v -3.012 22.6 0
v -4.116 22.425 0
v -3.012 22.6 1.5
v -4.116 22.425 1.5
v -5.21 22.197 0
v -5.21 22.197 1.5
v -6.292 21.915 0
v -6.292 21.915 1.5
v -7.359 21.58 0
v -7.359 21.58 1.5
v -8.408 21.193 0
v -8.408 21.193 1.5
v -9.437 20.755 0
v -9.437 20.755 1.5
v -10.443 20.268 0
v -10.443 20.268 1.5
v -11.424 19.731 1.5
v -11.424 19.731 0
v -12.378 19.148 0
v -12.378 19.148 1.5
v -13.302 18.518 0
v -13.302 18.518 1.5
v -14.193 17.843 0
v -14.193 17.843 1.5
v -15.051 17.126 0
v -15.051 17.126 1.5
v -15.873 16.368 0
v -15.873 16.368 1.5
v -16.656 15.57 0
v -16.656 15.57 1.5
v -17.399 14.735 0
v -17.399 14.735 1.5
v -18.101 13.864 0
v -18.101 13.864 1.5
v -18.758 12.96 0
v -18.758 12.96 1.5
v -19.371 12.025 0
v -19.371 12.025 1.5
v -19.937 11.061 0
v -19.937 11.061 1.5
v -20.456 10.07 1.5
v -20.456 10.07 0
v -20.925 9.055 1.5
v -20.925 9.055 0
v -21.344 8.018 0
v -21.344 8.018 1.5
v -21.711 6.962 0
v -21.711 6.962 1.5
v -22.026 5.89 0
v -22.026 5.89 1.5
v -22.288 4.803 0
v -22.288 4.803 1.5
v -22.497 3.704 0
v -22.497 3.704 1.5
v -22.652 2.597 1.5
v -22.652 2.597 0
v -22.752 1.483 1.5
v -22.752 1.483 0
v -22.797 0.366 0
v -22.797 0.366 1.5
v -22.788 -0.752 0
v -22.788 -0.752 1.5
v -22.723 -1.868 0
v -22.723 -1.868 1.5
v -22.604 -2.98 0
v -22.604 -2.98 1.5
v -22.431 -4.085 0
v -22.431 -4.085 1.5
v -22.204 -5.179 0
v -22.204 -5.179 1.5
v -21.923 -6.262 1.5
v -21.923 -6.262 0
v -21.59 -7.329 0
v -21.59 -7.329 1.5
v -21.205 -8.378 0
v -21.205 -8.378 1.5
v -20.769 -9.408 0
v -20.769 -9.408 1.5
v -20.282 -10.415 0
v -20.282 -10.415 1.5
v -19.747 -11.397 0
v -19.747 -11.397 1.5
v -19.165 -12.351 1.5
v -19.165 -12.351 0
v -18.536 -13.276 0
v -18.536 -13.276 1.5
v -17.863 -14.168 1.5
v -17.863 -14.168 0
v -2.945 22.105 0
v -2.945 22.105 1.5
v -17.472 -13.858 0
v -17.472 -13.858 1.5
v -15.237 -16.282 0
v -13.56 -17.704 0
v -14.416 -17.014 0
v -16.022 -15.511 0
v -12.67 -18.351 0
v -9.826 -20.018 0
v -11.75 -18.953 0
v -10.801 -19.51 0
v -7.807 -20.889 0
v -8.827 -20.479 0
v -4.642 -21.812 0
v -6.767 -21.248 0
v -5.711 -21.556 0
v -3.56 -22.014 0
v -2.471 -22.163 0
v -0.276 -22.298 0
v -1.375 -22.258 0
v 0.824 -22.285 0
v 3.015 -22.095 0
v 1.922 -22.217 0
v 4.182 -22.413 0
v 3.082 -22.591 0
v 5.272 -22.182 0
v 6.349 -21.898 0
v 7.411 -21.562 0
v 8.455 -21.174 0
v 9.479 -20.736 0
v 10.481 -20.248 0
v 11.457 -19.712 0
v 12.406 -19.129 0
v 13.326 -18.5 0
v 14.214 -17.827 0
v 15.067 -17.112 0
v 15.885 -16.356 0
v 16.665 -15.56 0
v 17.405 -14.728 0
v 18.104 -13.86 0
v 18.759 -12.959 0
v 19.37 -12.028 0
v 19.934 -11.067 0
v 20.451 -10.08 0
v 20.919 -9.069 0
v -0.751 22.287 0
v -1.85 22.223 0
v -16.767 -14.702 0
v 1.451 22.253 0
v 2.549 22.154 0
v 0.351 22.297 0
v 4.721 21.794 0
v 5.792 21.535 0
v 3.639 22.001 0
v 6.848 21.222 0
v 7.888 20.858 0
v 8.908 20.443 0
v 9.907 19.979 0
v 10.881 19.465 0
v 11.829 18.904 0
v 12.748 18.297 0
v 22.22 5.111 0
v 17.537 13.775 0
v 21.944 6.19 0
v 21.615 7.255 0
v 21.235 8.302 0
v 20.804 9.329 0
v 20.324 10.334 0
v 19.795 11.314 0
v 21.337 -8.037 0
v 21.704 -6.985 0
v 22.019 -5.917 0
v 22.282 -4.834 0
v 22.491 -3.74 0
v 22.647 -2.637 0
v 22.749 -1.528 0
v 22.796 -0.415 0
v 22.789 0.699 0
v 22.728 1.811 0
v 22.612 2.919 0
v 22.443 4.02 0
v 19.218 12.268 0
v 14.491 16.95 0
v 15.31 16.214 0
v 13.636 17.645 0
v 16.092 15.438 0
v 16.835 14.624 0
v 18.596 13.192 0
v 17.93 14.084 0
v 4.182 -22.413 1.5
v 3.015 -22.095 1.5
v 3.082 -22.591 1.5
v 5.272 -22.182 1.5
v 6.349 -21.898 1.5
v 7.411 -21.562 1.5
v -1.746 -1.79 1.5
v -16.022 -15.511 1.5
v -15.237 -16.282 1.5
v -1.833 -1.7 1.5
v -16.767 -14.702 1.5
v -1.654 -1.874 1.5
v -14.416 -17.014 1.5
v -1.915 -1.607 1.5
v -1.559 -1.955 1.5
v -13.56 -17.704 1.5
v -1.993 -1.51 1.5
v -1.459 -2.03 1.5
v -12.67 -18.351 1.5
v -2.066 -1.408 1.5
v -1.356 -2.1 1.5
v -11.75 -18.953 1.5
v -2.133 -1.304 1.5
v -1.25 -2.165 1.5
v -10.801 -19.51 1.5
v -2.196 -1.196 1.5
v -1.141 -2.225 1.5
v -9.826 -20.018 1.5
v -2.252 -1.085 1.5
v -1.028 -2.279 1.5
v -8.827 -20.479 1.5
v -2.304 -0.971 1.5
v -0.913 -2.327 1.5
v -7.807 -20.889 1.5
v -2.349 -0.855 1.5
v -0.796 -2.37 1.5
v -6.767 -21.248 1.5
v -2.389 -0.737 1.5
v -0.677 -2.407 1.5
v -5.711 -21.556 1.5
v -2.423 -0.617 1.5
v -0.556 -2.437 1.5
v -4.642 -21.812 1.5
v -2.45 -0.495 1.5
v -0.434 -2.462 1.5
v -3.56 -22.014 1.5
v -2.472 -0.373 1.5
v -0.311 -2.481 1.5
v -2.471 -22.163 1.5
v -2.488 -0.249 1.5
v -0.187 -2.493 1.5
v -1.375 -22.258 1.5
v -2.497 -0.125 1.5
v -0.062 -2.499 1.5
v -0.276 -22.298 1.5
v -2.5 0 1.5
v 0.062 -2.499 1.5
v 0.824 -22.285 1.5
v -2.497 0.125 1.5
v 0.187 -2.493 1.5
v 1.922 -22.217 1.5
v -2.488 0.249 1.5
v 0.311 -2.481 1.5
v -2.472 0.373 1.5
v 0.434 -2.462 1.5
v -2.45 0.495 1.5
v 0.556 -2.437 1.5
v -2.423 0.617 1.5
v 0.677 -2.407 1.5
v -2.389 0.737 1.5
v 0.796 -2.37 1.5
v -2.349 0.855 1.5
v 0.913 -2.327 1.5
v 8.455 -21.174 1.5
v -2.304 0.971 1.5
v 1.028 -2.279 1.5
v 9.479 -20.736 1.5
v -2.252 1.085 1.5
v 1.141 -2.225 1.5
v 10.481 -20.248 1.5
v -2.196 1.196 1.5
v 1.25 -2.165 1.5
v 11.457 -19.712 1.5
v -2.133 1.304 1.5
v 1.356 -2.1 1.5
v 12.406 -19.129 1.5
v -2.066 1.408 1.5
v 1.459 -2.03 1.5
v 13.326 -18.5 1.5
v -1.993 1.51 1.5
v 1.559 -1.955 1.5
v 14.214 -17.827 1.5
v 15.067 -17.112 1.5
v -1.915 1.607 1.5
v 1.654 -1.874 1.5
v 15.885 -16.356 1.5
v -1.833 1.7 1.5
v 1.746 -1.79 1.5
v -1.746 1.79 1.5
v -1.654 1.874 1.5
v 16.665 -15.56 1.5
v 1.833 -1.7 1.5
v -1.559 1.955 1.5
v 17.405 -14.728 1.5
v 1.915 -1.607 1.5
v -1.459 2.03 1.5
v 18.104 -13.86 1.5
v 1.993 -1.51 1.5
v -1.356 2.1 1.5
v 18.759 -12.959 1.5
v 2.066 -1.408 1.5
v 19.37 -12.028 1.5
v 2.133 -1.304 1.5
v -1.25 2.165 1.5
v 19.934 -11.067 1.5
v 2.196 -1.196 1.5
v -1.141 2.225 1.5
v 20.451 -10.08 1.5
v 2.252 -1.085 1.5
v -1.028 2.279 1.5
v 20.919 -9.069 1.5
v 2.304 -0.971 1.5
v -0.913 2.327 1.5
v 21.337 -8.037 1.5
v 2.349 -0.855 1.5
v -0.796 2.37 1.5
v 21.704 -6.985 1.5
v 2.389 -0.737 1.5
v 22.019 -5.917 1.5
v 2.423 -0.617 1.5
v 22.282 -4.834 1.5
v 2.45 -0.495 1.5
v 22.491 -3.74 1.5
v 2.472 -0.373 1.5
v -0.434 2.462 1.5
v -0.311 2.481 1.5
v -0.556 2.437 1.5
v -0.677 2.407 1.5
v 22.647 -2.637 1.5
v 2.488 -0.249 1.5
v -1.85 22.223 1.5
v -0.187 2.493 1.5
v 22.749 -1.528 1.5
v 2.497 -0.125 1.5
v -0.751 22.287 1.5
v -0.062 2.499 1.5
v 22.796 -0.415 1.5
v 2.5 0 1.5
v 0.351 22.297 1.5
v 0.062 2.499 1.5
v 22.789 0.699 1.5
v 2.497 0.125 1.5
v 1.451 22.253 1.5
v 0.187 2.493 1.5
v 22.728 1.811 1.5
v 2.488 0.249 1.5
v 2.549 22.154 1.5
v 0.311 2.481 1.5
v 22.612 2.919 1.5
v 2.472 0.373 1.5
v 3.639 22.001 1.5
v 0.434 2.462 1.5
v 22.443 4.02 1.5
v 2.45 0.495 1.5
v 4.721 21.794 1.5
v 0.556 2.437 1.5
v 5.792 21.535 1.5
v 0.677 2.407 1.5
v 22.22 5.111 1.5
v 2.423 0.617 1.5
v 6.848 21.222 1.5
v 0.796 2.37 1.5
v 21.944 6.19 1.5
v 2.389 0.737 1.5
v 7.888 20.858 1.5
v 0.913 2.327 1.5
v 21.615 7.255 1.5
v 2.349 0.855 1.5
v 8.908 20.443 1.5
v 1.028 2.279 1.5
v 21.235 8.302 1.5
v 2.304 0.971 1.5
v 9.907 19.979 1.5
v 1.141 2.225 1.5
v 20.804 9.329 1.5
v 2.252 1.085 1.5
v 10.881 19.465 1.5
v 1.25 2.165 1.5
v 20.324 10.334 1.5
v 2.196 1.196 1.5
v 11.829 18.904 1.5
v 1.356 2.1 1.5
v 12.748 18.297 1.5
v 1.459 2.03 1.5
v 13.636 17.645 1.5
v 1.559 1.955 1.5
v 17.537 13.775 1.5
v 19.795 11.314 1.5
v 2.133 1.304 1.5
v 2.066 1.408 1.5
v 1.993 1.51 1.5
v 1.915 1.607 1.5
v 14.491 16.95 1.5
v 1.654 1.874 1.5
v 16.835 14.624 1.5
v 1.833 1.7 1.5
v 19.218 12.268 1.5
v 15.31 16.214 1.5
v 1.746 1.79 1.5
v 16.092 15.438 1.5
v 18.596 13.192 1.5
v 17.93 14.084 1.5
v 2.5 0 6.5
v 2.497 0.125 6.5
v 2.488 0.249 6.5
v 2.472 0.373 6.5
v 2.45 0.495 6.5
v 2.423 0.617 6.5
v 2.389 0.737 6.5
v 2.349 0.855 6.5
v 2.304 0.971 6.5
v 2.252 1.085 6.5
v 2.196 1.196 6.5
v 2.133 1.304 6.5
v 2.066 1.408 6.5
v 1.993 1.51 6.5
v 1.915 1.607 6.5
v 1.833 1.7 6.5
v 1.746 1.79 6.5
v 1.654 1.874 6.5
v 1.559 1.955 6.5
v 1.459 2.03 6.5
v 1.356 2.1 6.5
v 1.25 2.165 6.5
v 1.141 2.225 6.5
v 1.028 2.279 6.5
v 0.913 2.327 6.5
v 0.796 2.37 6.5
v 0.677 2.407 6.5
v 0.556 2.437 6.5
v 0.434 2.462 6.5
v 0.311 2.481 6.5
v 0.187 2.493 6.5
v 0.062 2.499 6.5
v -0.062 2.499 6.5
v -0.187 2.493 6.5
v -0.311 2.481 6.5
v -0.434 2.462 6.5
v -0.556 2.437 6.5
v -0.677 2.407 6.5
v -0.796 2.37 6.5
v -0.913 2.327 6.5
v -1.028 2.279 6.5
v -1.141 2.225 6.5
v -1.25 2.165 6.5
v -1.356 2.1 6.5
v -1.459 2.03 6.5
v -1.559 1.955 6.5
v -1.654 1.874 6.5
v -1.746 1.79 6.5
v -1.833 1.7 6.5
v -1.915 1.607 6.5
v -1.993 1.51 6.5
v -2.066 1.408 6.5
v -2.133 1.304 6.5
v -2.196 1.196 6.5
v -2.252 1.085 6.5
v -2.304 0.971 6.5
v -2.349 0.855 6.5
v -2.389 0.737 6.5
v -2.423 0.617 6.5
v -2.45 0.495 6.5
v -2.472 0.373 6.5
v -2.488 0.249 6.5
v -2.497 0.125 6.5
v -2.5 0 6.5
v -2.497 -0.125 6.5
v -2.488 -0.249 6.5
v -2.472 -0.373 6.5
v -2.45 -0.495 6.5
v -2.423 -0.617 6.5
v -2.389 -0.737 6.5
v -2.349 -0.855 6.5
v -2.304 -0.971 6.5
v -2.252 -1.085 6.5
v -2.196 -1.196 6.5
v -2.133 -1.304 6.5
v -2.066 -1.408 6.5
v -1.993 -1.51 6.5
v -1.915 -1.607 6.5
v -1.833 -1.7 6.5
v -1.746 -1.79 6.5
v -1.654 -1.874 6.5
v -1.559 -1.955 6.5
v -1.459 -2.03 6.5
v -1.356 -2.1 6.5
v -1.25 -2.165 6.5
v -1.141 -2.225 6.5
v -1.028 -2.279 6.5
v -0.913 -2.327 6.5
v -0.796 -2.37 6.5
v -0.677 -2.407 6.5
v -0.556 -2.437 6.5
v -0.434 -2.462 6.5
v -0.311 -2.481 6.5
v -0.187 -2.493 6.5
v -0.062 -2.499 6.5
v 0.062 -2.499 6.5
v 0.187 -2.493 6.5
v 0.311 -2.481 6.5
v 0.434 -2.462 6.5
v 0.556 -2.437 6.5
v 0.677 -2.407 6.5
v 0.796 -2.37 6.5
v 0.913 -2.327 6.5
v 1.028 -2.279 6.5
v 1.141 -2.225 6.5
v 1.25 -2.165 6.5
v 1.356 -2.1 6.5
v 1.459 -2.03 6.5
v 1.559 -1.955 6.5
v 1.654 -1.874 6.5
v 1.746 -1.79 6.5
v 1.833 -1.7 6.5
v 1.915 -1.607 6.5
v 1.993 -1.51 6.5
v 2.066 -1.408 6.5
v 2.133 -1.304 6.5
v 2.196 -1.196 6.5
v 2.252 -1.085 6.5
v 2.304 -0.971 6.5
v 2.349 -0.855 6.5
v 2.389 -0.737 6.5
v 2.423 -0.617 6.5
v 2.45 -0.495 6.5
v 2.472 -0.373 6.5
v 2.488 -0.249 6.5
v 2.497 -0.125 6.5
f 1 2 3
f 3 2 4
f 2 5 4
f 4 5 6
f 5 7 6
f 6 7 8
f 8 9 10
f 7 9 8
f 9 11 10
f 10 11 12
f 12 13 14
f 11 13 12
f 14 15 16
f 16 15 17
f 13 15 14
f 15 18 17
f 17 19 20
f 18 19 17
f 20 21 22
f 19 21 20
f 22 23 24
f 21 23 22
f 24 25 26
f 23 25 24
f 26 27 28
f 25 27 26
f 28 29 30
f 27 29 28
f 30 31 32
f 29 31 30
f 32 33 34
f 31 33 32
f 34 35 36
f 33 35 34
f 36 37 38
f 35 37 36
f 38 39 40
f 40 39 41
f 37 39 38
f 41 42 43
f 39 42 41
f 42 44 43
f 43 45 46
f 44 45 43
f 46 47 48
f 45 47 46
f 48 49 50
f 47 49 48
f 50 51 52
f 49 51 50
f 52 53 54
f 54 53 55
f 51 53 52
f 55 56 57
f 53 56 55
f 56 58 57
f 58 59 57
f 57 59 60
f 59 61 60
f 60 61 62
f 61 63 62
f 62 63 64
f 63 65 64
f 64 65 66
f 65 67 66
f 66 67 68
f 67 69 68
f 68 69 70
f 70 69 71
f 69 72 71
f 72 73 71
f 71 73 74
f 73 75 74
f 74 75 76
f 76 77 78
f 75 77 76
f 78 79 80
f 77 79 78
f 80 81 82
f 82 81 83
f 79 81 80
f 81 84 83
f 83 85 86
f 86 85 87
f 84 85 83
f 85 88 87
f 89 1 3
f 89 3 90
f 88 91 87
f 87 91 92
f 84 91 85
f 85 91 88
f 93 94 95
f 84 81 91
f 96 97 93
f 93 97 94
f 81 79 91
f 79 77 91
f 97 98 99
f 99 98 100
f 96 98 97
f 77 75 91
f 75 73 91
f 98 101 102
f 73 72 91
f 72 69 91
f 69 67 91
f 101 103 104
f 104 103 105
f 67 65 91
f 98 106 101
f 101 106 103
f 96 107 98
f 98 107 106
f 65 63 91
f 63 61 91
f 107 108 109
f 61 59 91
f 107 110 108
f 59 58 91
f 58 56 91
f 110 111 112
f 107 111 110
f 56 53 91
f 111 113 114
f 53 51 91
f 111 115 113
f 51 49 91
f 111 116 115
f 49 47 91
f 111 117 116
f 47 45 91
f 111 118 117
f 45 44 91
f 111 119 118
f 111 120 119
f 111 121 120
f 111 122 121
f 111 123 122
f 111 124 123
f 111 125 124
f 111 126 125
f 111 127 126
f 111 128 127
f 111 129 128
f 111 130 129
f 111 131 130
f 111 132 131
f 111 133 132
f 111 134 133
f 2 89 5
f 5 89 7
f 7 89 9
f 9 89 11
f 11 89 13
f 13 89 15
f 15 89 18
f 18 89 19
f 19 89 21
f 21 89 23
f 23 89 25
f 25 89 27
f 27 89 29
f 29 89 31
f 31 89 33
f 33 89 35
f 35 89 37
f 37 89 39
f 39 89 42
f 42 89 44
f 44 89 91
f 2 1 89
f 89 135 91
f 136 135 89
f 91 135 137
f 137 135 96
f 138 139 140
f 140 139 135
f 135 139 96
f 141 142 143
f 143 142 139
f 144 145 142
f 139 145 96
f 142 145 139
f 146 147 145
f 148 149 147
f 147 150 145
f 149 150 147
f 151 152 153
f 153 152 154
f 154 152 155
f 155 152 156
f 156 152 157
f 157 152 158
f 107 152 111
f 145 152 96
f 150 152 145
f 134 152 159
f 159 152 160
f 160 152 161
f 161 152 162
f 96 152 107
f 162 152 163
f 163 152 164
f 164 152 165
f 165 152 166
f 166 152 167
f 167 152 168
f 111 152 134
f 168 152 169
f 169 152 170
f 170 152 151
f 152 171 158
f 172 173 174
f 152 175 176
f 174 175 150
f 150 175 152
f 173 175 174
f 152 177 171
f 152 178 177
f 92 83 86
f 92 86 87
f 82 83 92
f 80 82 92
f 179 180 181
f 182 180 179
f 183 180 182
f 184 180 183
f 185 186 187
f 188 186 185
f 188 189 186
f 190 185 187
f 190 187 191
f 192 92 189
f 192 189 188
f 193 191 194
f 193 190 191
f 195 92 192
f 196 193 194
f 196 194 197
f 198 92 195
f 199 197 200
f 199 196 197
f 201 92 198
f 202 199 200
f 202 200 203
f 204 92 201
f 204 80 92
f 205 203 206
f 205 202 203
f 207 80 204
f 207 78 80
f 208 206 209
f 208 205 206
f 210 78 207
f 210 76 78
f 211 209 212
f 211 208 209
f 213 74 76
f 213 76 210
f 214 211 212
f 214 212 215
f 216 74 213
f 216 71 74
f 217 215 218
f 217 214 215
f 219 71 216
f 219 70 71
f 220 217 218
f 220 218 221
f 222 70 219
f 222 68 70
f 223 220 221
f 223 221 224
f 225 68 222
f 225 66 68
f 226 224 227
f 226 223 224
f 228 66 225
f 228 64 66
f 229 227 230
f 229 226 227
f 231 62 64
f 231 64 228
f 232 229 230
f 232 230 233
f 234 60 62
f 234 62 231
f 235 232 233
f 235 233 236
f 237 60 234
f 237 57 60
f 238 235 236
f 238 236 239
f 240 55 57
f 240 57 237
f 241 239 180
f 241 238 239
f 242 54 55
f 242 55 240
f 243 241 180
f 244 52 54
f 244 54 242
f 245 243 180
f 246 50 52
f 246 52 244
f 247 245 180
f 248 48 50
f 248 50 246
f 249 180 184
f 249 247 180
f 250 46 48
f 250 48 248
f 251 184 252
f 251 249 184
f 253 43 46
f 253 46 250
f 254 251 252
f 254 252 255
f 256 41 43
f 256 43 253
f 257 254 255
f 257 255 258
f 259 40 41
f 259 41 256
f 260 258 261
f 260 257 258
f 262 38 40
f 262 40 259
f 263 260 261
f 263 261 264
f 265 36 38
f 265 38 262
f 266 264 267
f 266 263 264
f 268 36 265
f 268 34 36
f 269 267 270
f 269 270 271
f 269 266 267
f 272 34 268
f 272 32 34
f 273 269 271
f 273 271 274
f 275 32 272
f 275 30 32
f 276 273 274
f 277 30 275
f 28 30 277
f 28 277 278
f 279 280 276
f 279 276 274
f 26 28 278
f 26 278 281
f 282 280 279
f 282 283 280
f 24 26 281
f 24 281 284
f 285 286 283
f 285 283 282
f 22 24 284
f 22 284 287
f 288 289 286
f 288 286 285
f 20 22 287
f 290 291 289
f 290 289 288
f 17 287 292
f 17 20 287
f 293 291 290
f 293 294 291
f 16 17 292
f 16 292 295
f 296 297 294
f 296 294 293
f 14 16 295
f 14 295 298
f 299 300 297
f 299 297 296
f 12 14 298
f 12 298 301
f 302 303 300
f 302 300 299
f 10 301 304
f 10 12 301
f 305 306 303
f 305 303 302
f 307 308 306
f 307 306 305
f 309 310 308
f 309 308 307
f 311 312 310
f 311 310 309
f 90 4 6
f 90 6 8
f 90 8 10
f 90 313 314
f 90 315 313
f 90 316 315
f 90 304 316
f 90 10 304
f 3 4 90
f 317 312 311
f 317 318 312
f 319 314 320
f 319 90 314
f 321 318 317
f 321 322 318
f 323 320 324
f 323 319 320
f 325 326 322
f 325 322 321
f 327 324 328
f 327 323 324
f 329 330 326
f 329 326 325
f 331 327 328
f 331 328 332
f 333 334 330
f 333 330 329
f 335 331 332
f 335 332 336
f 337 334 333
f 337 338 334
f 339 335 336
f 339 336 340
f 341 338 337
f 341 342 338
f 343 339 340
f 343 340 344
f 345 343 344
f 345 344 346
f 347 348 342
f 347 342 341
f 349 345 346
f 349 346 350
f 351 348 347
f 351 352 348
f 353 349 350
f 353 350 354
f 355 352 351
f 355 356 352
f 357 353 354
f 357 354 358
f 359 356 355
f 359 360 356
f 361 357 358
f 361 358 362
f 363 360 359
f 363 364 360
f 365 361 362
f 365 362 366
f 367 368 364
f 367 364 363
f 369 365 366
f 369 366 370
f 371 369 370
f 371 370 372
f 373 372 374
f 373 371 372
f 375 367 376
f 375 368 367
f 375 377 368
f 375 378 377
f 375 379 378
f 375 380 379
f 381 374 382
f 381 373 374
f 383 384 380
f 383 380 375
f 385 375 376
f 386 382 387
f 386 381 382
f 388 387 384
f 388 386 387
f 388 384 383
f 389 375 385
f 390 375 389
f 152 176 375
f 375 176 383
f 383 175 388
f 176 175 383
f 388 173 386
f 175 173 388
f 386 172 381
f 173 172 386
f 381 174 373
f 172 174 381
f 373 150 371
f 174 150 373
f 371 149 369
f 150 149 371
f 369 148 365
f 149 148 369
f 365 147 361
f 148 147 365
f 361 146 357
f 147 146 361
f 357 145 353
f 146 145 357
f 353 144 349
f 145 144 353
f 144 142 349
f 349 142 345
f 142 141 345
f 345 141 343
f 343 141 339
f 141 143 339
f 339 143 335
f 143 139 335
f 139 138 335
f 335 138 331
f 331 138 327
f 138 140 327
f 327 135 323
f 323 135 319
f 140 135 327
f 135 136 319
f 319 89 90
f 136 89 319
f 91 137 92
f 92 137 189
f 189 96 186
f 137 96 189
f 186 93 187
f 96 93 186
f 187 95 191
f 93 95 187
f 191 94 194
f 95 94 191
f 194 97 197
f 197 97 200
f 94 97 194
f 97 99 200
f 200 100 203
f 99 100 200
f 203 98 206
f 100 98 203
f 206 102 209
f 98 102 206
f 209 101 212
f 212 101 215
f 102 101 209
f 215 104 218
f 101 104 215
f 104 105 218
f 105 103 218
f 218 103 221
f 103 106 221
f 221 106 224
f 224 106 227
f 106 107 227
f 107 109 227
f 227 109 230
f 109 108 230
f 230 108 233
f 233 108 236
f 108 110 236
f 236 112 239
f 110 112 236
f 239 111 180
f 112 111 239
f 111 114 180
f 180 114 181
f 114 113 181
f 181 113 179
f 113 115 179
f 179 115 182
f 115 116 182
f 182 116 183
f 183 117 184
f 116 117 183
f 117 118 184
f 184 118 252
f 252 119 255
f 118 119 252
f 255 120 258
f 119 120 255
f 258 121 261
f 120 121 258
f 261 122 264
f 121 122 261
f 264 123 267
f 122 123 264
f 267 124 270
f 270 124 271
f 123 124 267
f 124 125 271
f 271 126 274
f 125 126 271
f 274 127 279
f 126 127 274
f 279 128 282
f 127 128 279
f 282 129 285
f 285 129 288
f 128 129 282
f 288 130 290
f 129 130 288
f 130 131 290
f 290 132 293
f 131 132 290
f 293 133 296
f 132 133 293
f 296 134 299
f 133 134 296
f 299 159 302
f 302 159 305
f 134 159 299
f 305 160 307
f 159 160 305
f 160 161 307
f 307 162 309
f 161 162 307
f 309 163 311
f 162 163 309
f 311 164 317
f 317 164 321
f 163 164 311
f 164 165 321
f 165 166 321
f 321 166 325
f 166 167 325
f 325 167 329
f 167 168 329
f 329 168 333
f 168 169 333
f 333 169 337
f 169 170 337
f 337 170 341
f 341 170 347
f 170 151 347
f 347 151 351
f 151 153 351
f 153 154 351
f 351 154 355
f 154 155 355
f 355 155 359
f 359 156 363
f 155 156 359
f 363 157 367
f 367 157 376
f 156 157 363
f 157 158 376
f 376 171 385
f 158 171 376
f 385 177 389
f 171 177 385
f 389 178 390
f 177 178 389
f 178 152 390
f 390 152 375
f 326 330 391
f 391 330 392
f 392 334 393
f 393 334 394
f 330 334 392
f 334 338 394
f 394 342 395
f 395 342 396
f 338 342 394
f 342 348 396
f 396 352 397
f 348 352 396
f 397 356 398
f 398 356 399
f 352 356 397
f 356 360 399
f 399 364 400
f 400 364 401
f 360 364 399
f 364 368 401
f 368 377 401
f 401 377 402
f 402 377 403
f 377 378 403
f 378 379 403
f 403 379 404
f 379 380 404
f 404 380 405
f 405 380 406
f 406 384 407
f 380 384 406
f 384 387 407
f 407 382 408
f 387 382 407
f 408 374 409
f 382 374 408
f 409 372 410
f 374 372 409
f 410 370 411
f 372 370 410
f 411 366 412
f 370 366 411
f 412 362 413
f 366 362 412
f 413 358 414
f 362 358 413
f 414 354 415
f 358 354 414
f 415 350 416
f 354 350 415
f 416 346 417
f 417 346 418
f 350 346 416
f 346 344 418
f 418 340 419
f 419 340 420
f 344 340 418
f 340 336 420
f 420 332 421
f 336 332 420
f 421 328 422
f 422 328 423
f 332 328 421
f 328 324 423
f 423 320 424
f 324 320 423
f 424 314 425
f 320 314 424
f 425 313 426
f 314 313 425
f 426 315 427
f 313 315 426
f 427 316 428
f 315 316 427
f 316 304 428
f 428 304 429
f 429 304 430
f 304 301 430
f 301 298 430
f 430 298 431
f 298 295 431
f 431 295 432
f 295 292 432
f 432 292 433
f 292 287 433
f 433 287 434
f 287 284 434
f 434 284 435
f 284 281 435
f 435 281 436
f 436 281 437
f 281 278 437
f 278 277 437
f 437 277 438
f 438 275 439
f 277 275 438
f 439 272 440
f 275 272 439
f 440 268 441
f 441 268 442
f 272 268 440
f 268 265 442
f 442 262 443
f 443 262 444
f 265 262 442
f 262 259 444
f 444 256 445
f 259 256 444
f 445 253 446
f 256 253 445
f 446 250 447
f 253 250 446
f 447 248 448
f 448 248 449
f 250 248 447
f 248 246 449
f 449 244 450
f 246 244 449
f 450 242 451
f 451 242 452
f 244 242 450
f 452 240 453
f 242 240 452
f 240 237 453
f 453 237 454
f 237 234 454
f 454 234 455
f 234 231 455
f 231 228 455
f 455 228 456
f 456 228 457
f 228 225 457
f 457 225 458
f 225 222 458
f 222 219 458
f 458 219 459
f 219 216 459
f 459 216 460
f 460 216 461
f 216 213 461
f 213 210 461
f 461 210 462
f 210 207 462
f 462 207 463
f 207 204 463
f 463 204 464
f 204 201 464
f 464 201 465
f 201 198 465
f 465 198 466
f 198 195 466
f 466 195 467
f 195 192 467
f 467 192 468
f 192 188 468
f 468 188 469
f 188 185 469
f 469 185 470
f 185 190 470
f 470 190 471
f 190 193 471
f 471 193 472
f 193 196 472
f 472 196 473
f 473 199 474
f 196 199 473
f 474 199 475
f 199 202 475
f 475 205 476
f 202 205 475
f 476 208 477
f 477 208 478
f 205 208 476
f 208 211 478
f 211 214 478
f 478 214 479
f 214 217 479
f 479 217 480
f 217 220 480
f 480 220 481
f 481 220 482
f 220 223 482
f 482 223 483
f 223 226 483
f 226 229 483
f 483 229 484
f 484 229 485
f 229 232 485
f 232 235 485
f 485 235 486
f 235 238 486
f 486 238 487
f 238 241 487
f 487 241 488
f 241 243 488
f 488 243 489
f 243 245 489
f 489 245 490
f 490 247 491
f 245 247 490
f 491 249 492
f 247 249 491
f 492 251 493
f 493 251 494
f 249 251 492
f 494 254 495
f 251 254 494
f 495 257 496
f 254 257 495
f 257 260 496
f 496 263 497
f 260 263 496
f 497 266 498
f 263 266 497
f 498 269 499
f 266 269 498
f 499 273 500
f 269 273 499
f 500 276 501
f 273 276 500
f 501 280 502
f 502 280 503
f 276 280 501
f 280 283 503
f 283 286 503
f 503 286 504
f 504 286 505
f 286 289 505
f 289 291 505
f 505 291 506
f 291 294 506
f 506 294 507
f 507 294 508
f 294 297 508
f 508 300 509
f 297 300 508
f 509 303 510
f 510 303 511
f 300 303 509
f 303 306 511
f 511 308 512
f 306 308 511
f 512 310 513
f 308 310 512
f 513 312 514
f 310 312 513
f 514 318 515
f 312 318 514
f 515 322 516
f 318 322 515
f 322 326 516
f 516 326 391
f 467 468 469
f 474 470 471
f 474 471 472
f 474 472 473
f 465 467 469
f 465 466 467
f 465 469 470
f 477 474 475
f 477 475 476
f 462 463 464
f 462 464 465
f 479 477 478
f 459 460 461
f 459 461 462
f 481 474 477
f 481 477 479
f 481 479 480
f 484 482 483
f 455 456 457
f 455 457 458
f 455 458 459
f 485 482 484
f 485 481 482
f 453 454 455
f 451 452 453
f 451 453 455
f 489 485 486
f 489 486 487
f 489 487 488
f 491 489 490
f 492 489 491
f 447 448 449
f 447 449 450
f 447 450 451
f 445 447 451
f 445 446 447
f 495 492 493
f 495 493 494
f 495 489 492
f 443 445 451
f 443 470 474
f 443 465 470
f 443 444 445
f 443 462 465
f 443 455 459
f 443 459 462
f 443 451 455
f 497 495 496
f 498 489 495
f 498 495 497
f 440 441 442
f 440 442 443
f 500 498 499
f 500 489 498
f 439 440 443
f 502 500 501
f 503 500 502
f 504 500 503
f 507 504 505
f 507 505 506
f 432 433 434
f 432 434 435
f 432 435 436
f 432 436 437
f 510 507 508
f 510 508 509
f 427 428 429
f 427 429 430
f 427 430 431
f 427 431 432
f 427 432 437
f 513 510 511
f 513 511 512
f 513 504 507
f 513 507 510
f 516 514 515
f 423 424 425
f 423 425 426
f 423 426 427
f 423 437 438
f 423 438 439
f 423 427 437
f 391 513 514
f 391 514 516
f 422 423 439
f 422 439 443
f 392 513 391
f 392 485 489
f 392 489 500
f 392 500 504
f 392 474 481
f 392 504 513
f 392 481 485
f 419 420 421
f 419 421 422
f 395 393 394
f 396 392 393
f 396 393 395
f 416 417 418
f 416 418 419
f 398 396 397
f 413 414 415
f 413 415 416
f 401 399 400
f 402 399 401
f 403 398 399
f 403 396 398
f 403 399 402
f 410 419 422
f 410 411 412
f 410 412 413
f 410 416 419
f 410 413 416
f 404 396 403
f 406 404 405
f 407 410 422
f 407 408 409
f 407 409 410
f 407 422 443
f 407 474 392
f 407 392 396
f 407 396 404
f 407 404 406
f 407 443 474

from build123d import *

# Parameters (mm, degrees)
PAD_DEPTH    = 1.5
SKETCH001_R  = 2.5
PAD001_DEPTH = 5


with BuildPart() as part:
    # Sketch → Pad (new body)
    with BuildSketch(Plane.XY):
        with BuildLine():
            Line((17.929835, 14.08407), (17.536637, 13.775209))
            ThreePointArc((17.536637, 13.775209), (8.400618, 20.657193), (-2.94546, 22.104621))
            Line((-3.011501, 22.60024), (-2.94546, 22.104621))
            ThreePointArc((-3.011501, 22.60024), (-21.140537, 8.539186), (-17.863266, -14.168406))
            Line((-17.863266, -14.168406), (-17.471528, -13.857695))
            ThreePointArc((-17.471528, -13.857695), (-8.319433, -20.690023), (3.014889, -22.095258))
            Line((3.014889, -22.095258), (3.082487, -22.590668))
            ThreePointArc((3.082487, -22.590668), (21.133824, -8.555787), (17.929835, 14.08407))
        make_face()
    extrude(amount=PAD_DEPTH)

    # Sketch001 (on Face10 of Pad) → Pad001 (join)
    with BuildSketch(Plane.XY.offset(1.5)):
        Circle(SKETCH001_R)
    extrude(amount=PAD001_DEPTH)


solid = part.part
